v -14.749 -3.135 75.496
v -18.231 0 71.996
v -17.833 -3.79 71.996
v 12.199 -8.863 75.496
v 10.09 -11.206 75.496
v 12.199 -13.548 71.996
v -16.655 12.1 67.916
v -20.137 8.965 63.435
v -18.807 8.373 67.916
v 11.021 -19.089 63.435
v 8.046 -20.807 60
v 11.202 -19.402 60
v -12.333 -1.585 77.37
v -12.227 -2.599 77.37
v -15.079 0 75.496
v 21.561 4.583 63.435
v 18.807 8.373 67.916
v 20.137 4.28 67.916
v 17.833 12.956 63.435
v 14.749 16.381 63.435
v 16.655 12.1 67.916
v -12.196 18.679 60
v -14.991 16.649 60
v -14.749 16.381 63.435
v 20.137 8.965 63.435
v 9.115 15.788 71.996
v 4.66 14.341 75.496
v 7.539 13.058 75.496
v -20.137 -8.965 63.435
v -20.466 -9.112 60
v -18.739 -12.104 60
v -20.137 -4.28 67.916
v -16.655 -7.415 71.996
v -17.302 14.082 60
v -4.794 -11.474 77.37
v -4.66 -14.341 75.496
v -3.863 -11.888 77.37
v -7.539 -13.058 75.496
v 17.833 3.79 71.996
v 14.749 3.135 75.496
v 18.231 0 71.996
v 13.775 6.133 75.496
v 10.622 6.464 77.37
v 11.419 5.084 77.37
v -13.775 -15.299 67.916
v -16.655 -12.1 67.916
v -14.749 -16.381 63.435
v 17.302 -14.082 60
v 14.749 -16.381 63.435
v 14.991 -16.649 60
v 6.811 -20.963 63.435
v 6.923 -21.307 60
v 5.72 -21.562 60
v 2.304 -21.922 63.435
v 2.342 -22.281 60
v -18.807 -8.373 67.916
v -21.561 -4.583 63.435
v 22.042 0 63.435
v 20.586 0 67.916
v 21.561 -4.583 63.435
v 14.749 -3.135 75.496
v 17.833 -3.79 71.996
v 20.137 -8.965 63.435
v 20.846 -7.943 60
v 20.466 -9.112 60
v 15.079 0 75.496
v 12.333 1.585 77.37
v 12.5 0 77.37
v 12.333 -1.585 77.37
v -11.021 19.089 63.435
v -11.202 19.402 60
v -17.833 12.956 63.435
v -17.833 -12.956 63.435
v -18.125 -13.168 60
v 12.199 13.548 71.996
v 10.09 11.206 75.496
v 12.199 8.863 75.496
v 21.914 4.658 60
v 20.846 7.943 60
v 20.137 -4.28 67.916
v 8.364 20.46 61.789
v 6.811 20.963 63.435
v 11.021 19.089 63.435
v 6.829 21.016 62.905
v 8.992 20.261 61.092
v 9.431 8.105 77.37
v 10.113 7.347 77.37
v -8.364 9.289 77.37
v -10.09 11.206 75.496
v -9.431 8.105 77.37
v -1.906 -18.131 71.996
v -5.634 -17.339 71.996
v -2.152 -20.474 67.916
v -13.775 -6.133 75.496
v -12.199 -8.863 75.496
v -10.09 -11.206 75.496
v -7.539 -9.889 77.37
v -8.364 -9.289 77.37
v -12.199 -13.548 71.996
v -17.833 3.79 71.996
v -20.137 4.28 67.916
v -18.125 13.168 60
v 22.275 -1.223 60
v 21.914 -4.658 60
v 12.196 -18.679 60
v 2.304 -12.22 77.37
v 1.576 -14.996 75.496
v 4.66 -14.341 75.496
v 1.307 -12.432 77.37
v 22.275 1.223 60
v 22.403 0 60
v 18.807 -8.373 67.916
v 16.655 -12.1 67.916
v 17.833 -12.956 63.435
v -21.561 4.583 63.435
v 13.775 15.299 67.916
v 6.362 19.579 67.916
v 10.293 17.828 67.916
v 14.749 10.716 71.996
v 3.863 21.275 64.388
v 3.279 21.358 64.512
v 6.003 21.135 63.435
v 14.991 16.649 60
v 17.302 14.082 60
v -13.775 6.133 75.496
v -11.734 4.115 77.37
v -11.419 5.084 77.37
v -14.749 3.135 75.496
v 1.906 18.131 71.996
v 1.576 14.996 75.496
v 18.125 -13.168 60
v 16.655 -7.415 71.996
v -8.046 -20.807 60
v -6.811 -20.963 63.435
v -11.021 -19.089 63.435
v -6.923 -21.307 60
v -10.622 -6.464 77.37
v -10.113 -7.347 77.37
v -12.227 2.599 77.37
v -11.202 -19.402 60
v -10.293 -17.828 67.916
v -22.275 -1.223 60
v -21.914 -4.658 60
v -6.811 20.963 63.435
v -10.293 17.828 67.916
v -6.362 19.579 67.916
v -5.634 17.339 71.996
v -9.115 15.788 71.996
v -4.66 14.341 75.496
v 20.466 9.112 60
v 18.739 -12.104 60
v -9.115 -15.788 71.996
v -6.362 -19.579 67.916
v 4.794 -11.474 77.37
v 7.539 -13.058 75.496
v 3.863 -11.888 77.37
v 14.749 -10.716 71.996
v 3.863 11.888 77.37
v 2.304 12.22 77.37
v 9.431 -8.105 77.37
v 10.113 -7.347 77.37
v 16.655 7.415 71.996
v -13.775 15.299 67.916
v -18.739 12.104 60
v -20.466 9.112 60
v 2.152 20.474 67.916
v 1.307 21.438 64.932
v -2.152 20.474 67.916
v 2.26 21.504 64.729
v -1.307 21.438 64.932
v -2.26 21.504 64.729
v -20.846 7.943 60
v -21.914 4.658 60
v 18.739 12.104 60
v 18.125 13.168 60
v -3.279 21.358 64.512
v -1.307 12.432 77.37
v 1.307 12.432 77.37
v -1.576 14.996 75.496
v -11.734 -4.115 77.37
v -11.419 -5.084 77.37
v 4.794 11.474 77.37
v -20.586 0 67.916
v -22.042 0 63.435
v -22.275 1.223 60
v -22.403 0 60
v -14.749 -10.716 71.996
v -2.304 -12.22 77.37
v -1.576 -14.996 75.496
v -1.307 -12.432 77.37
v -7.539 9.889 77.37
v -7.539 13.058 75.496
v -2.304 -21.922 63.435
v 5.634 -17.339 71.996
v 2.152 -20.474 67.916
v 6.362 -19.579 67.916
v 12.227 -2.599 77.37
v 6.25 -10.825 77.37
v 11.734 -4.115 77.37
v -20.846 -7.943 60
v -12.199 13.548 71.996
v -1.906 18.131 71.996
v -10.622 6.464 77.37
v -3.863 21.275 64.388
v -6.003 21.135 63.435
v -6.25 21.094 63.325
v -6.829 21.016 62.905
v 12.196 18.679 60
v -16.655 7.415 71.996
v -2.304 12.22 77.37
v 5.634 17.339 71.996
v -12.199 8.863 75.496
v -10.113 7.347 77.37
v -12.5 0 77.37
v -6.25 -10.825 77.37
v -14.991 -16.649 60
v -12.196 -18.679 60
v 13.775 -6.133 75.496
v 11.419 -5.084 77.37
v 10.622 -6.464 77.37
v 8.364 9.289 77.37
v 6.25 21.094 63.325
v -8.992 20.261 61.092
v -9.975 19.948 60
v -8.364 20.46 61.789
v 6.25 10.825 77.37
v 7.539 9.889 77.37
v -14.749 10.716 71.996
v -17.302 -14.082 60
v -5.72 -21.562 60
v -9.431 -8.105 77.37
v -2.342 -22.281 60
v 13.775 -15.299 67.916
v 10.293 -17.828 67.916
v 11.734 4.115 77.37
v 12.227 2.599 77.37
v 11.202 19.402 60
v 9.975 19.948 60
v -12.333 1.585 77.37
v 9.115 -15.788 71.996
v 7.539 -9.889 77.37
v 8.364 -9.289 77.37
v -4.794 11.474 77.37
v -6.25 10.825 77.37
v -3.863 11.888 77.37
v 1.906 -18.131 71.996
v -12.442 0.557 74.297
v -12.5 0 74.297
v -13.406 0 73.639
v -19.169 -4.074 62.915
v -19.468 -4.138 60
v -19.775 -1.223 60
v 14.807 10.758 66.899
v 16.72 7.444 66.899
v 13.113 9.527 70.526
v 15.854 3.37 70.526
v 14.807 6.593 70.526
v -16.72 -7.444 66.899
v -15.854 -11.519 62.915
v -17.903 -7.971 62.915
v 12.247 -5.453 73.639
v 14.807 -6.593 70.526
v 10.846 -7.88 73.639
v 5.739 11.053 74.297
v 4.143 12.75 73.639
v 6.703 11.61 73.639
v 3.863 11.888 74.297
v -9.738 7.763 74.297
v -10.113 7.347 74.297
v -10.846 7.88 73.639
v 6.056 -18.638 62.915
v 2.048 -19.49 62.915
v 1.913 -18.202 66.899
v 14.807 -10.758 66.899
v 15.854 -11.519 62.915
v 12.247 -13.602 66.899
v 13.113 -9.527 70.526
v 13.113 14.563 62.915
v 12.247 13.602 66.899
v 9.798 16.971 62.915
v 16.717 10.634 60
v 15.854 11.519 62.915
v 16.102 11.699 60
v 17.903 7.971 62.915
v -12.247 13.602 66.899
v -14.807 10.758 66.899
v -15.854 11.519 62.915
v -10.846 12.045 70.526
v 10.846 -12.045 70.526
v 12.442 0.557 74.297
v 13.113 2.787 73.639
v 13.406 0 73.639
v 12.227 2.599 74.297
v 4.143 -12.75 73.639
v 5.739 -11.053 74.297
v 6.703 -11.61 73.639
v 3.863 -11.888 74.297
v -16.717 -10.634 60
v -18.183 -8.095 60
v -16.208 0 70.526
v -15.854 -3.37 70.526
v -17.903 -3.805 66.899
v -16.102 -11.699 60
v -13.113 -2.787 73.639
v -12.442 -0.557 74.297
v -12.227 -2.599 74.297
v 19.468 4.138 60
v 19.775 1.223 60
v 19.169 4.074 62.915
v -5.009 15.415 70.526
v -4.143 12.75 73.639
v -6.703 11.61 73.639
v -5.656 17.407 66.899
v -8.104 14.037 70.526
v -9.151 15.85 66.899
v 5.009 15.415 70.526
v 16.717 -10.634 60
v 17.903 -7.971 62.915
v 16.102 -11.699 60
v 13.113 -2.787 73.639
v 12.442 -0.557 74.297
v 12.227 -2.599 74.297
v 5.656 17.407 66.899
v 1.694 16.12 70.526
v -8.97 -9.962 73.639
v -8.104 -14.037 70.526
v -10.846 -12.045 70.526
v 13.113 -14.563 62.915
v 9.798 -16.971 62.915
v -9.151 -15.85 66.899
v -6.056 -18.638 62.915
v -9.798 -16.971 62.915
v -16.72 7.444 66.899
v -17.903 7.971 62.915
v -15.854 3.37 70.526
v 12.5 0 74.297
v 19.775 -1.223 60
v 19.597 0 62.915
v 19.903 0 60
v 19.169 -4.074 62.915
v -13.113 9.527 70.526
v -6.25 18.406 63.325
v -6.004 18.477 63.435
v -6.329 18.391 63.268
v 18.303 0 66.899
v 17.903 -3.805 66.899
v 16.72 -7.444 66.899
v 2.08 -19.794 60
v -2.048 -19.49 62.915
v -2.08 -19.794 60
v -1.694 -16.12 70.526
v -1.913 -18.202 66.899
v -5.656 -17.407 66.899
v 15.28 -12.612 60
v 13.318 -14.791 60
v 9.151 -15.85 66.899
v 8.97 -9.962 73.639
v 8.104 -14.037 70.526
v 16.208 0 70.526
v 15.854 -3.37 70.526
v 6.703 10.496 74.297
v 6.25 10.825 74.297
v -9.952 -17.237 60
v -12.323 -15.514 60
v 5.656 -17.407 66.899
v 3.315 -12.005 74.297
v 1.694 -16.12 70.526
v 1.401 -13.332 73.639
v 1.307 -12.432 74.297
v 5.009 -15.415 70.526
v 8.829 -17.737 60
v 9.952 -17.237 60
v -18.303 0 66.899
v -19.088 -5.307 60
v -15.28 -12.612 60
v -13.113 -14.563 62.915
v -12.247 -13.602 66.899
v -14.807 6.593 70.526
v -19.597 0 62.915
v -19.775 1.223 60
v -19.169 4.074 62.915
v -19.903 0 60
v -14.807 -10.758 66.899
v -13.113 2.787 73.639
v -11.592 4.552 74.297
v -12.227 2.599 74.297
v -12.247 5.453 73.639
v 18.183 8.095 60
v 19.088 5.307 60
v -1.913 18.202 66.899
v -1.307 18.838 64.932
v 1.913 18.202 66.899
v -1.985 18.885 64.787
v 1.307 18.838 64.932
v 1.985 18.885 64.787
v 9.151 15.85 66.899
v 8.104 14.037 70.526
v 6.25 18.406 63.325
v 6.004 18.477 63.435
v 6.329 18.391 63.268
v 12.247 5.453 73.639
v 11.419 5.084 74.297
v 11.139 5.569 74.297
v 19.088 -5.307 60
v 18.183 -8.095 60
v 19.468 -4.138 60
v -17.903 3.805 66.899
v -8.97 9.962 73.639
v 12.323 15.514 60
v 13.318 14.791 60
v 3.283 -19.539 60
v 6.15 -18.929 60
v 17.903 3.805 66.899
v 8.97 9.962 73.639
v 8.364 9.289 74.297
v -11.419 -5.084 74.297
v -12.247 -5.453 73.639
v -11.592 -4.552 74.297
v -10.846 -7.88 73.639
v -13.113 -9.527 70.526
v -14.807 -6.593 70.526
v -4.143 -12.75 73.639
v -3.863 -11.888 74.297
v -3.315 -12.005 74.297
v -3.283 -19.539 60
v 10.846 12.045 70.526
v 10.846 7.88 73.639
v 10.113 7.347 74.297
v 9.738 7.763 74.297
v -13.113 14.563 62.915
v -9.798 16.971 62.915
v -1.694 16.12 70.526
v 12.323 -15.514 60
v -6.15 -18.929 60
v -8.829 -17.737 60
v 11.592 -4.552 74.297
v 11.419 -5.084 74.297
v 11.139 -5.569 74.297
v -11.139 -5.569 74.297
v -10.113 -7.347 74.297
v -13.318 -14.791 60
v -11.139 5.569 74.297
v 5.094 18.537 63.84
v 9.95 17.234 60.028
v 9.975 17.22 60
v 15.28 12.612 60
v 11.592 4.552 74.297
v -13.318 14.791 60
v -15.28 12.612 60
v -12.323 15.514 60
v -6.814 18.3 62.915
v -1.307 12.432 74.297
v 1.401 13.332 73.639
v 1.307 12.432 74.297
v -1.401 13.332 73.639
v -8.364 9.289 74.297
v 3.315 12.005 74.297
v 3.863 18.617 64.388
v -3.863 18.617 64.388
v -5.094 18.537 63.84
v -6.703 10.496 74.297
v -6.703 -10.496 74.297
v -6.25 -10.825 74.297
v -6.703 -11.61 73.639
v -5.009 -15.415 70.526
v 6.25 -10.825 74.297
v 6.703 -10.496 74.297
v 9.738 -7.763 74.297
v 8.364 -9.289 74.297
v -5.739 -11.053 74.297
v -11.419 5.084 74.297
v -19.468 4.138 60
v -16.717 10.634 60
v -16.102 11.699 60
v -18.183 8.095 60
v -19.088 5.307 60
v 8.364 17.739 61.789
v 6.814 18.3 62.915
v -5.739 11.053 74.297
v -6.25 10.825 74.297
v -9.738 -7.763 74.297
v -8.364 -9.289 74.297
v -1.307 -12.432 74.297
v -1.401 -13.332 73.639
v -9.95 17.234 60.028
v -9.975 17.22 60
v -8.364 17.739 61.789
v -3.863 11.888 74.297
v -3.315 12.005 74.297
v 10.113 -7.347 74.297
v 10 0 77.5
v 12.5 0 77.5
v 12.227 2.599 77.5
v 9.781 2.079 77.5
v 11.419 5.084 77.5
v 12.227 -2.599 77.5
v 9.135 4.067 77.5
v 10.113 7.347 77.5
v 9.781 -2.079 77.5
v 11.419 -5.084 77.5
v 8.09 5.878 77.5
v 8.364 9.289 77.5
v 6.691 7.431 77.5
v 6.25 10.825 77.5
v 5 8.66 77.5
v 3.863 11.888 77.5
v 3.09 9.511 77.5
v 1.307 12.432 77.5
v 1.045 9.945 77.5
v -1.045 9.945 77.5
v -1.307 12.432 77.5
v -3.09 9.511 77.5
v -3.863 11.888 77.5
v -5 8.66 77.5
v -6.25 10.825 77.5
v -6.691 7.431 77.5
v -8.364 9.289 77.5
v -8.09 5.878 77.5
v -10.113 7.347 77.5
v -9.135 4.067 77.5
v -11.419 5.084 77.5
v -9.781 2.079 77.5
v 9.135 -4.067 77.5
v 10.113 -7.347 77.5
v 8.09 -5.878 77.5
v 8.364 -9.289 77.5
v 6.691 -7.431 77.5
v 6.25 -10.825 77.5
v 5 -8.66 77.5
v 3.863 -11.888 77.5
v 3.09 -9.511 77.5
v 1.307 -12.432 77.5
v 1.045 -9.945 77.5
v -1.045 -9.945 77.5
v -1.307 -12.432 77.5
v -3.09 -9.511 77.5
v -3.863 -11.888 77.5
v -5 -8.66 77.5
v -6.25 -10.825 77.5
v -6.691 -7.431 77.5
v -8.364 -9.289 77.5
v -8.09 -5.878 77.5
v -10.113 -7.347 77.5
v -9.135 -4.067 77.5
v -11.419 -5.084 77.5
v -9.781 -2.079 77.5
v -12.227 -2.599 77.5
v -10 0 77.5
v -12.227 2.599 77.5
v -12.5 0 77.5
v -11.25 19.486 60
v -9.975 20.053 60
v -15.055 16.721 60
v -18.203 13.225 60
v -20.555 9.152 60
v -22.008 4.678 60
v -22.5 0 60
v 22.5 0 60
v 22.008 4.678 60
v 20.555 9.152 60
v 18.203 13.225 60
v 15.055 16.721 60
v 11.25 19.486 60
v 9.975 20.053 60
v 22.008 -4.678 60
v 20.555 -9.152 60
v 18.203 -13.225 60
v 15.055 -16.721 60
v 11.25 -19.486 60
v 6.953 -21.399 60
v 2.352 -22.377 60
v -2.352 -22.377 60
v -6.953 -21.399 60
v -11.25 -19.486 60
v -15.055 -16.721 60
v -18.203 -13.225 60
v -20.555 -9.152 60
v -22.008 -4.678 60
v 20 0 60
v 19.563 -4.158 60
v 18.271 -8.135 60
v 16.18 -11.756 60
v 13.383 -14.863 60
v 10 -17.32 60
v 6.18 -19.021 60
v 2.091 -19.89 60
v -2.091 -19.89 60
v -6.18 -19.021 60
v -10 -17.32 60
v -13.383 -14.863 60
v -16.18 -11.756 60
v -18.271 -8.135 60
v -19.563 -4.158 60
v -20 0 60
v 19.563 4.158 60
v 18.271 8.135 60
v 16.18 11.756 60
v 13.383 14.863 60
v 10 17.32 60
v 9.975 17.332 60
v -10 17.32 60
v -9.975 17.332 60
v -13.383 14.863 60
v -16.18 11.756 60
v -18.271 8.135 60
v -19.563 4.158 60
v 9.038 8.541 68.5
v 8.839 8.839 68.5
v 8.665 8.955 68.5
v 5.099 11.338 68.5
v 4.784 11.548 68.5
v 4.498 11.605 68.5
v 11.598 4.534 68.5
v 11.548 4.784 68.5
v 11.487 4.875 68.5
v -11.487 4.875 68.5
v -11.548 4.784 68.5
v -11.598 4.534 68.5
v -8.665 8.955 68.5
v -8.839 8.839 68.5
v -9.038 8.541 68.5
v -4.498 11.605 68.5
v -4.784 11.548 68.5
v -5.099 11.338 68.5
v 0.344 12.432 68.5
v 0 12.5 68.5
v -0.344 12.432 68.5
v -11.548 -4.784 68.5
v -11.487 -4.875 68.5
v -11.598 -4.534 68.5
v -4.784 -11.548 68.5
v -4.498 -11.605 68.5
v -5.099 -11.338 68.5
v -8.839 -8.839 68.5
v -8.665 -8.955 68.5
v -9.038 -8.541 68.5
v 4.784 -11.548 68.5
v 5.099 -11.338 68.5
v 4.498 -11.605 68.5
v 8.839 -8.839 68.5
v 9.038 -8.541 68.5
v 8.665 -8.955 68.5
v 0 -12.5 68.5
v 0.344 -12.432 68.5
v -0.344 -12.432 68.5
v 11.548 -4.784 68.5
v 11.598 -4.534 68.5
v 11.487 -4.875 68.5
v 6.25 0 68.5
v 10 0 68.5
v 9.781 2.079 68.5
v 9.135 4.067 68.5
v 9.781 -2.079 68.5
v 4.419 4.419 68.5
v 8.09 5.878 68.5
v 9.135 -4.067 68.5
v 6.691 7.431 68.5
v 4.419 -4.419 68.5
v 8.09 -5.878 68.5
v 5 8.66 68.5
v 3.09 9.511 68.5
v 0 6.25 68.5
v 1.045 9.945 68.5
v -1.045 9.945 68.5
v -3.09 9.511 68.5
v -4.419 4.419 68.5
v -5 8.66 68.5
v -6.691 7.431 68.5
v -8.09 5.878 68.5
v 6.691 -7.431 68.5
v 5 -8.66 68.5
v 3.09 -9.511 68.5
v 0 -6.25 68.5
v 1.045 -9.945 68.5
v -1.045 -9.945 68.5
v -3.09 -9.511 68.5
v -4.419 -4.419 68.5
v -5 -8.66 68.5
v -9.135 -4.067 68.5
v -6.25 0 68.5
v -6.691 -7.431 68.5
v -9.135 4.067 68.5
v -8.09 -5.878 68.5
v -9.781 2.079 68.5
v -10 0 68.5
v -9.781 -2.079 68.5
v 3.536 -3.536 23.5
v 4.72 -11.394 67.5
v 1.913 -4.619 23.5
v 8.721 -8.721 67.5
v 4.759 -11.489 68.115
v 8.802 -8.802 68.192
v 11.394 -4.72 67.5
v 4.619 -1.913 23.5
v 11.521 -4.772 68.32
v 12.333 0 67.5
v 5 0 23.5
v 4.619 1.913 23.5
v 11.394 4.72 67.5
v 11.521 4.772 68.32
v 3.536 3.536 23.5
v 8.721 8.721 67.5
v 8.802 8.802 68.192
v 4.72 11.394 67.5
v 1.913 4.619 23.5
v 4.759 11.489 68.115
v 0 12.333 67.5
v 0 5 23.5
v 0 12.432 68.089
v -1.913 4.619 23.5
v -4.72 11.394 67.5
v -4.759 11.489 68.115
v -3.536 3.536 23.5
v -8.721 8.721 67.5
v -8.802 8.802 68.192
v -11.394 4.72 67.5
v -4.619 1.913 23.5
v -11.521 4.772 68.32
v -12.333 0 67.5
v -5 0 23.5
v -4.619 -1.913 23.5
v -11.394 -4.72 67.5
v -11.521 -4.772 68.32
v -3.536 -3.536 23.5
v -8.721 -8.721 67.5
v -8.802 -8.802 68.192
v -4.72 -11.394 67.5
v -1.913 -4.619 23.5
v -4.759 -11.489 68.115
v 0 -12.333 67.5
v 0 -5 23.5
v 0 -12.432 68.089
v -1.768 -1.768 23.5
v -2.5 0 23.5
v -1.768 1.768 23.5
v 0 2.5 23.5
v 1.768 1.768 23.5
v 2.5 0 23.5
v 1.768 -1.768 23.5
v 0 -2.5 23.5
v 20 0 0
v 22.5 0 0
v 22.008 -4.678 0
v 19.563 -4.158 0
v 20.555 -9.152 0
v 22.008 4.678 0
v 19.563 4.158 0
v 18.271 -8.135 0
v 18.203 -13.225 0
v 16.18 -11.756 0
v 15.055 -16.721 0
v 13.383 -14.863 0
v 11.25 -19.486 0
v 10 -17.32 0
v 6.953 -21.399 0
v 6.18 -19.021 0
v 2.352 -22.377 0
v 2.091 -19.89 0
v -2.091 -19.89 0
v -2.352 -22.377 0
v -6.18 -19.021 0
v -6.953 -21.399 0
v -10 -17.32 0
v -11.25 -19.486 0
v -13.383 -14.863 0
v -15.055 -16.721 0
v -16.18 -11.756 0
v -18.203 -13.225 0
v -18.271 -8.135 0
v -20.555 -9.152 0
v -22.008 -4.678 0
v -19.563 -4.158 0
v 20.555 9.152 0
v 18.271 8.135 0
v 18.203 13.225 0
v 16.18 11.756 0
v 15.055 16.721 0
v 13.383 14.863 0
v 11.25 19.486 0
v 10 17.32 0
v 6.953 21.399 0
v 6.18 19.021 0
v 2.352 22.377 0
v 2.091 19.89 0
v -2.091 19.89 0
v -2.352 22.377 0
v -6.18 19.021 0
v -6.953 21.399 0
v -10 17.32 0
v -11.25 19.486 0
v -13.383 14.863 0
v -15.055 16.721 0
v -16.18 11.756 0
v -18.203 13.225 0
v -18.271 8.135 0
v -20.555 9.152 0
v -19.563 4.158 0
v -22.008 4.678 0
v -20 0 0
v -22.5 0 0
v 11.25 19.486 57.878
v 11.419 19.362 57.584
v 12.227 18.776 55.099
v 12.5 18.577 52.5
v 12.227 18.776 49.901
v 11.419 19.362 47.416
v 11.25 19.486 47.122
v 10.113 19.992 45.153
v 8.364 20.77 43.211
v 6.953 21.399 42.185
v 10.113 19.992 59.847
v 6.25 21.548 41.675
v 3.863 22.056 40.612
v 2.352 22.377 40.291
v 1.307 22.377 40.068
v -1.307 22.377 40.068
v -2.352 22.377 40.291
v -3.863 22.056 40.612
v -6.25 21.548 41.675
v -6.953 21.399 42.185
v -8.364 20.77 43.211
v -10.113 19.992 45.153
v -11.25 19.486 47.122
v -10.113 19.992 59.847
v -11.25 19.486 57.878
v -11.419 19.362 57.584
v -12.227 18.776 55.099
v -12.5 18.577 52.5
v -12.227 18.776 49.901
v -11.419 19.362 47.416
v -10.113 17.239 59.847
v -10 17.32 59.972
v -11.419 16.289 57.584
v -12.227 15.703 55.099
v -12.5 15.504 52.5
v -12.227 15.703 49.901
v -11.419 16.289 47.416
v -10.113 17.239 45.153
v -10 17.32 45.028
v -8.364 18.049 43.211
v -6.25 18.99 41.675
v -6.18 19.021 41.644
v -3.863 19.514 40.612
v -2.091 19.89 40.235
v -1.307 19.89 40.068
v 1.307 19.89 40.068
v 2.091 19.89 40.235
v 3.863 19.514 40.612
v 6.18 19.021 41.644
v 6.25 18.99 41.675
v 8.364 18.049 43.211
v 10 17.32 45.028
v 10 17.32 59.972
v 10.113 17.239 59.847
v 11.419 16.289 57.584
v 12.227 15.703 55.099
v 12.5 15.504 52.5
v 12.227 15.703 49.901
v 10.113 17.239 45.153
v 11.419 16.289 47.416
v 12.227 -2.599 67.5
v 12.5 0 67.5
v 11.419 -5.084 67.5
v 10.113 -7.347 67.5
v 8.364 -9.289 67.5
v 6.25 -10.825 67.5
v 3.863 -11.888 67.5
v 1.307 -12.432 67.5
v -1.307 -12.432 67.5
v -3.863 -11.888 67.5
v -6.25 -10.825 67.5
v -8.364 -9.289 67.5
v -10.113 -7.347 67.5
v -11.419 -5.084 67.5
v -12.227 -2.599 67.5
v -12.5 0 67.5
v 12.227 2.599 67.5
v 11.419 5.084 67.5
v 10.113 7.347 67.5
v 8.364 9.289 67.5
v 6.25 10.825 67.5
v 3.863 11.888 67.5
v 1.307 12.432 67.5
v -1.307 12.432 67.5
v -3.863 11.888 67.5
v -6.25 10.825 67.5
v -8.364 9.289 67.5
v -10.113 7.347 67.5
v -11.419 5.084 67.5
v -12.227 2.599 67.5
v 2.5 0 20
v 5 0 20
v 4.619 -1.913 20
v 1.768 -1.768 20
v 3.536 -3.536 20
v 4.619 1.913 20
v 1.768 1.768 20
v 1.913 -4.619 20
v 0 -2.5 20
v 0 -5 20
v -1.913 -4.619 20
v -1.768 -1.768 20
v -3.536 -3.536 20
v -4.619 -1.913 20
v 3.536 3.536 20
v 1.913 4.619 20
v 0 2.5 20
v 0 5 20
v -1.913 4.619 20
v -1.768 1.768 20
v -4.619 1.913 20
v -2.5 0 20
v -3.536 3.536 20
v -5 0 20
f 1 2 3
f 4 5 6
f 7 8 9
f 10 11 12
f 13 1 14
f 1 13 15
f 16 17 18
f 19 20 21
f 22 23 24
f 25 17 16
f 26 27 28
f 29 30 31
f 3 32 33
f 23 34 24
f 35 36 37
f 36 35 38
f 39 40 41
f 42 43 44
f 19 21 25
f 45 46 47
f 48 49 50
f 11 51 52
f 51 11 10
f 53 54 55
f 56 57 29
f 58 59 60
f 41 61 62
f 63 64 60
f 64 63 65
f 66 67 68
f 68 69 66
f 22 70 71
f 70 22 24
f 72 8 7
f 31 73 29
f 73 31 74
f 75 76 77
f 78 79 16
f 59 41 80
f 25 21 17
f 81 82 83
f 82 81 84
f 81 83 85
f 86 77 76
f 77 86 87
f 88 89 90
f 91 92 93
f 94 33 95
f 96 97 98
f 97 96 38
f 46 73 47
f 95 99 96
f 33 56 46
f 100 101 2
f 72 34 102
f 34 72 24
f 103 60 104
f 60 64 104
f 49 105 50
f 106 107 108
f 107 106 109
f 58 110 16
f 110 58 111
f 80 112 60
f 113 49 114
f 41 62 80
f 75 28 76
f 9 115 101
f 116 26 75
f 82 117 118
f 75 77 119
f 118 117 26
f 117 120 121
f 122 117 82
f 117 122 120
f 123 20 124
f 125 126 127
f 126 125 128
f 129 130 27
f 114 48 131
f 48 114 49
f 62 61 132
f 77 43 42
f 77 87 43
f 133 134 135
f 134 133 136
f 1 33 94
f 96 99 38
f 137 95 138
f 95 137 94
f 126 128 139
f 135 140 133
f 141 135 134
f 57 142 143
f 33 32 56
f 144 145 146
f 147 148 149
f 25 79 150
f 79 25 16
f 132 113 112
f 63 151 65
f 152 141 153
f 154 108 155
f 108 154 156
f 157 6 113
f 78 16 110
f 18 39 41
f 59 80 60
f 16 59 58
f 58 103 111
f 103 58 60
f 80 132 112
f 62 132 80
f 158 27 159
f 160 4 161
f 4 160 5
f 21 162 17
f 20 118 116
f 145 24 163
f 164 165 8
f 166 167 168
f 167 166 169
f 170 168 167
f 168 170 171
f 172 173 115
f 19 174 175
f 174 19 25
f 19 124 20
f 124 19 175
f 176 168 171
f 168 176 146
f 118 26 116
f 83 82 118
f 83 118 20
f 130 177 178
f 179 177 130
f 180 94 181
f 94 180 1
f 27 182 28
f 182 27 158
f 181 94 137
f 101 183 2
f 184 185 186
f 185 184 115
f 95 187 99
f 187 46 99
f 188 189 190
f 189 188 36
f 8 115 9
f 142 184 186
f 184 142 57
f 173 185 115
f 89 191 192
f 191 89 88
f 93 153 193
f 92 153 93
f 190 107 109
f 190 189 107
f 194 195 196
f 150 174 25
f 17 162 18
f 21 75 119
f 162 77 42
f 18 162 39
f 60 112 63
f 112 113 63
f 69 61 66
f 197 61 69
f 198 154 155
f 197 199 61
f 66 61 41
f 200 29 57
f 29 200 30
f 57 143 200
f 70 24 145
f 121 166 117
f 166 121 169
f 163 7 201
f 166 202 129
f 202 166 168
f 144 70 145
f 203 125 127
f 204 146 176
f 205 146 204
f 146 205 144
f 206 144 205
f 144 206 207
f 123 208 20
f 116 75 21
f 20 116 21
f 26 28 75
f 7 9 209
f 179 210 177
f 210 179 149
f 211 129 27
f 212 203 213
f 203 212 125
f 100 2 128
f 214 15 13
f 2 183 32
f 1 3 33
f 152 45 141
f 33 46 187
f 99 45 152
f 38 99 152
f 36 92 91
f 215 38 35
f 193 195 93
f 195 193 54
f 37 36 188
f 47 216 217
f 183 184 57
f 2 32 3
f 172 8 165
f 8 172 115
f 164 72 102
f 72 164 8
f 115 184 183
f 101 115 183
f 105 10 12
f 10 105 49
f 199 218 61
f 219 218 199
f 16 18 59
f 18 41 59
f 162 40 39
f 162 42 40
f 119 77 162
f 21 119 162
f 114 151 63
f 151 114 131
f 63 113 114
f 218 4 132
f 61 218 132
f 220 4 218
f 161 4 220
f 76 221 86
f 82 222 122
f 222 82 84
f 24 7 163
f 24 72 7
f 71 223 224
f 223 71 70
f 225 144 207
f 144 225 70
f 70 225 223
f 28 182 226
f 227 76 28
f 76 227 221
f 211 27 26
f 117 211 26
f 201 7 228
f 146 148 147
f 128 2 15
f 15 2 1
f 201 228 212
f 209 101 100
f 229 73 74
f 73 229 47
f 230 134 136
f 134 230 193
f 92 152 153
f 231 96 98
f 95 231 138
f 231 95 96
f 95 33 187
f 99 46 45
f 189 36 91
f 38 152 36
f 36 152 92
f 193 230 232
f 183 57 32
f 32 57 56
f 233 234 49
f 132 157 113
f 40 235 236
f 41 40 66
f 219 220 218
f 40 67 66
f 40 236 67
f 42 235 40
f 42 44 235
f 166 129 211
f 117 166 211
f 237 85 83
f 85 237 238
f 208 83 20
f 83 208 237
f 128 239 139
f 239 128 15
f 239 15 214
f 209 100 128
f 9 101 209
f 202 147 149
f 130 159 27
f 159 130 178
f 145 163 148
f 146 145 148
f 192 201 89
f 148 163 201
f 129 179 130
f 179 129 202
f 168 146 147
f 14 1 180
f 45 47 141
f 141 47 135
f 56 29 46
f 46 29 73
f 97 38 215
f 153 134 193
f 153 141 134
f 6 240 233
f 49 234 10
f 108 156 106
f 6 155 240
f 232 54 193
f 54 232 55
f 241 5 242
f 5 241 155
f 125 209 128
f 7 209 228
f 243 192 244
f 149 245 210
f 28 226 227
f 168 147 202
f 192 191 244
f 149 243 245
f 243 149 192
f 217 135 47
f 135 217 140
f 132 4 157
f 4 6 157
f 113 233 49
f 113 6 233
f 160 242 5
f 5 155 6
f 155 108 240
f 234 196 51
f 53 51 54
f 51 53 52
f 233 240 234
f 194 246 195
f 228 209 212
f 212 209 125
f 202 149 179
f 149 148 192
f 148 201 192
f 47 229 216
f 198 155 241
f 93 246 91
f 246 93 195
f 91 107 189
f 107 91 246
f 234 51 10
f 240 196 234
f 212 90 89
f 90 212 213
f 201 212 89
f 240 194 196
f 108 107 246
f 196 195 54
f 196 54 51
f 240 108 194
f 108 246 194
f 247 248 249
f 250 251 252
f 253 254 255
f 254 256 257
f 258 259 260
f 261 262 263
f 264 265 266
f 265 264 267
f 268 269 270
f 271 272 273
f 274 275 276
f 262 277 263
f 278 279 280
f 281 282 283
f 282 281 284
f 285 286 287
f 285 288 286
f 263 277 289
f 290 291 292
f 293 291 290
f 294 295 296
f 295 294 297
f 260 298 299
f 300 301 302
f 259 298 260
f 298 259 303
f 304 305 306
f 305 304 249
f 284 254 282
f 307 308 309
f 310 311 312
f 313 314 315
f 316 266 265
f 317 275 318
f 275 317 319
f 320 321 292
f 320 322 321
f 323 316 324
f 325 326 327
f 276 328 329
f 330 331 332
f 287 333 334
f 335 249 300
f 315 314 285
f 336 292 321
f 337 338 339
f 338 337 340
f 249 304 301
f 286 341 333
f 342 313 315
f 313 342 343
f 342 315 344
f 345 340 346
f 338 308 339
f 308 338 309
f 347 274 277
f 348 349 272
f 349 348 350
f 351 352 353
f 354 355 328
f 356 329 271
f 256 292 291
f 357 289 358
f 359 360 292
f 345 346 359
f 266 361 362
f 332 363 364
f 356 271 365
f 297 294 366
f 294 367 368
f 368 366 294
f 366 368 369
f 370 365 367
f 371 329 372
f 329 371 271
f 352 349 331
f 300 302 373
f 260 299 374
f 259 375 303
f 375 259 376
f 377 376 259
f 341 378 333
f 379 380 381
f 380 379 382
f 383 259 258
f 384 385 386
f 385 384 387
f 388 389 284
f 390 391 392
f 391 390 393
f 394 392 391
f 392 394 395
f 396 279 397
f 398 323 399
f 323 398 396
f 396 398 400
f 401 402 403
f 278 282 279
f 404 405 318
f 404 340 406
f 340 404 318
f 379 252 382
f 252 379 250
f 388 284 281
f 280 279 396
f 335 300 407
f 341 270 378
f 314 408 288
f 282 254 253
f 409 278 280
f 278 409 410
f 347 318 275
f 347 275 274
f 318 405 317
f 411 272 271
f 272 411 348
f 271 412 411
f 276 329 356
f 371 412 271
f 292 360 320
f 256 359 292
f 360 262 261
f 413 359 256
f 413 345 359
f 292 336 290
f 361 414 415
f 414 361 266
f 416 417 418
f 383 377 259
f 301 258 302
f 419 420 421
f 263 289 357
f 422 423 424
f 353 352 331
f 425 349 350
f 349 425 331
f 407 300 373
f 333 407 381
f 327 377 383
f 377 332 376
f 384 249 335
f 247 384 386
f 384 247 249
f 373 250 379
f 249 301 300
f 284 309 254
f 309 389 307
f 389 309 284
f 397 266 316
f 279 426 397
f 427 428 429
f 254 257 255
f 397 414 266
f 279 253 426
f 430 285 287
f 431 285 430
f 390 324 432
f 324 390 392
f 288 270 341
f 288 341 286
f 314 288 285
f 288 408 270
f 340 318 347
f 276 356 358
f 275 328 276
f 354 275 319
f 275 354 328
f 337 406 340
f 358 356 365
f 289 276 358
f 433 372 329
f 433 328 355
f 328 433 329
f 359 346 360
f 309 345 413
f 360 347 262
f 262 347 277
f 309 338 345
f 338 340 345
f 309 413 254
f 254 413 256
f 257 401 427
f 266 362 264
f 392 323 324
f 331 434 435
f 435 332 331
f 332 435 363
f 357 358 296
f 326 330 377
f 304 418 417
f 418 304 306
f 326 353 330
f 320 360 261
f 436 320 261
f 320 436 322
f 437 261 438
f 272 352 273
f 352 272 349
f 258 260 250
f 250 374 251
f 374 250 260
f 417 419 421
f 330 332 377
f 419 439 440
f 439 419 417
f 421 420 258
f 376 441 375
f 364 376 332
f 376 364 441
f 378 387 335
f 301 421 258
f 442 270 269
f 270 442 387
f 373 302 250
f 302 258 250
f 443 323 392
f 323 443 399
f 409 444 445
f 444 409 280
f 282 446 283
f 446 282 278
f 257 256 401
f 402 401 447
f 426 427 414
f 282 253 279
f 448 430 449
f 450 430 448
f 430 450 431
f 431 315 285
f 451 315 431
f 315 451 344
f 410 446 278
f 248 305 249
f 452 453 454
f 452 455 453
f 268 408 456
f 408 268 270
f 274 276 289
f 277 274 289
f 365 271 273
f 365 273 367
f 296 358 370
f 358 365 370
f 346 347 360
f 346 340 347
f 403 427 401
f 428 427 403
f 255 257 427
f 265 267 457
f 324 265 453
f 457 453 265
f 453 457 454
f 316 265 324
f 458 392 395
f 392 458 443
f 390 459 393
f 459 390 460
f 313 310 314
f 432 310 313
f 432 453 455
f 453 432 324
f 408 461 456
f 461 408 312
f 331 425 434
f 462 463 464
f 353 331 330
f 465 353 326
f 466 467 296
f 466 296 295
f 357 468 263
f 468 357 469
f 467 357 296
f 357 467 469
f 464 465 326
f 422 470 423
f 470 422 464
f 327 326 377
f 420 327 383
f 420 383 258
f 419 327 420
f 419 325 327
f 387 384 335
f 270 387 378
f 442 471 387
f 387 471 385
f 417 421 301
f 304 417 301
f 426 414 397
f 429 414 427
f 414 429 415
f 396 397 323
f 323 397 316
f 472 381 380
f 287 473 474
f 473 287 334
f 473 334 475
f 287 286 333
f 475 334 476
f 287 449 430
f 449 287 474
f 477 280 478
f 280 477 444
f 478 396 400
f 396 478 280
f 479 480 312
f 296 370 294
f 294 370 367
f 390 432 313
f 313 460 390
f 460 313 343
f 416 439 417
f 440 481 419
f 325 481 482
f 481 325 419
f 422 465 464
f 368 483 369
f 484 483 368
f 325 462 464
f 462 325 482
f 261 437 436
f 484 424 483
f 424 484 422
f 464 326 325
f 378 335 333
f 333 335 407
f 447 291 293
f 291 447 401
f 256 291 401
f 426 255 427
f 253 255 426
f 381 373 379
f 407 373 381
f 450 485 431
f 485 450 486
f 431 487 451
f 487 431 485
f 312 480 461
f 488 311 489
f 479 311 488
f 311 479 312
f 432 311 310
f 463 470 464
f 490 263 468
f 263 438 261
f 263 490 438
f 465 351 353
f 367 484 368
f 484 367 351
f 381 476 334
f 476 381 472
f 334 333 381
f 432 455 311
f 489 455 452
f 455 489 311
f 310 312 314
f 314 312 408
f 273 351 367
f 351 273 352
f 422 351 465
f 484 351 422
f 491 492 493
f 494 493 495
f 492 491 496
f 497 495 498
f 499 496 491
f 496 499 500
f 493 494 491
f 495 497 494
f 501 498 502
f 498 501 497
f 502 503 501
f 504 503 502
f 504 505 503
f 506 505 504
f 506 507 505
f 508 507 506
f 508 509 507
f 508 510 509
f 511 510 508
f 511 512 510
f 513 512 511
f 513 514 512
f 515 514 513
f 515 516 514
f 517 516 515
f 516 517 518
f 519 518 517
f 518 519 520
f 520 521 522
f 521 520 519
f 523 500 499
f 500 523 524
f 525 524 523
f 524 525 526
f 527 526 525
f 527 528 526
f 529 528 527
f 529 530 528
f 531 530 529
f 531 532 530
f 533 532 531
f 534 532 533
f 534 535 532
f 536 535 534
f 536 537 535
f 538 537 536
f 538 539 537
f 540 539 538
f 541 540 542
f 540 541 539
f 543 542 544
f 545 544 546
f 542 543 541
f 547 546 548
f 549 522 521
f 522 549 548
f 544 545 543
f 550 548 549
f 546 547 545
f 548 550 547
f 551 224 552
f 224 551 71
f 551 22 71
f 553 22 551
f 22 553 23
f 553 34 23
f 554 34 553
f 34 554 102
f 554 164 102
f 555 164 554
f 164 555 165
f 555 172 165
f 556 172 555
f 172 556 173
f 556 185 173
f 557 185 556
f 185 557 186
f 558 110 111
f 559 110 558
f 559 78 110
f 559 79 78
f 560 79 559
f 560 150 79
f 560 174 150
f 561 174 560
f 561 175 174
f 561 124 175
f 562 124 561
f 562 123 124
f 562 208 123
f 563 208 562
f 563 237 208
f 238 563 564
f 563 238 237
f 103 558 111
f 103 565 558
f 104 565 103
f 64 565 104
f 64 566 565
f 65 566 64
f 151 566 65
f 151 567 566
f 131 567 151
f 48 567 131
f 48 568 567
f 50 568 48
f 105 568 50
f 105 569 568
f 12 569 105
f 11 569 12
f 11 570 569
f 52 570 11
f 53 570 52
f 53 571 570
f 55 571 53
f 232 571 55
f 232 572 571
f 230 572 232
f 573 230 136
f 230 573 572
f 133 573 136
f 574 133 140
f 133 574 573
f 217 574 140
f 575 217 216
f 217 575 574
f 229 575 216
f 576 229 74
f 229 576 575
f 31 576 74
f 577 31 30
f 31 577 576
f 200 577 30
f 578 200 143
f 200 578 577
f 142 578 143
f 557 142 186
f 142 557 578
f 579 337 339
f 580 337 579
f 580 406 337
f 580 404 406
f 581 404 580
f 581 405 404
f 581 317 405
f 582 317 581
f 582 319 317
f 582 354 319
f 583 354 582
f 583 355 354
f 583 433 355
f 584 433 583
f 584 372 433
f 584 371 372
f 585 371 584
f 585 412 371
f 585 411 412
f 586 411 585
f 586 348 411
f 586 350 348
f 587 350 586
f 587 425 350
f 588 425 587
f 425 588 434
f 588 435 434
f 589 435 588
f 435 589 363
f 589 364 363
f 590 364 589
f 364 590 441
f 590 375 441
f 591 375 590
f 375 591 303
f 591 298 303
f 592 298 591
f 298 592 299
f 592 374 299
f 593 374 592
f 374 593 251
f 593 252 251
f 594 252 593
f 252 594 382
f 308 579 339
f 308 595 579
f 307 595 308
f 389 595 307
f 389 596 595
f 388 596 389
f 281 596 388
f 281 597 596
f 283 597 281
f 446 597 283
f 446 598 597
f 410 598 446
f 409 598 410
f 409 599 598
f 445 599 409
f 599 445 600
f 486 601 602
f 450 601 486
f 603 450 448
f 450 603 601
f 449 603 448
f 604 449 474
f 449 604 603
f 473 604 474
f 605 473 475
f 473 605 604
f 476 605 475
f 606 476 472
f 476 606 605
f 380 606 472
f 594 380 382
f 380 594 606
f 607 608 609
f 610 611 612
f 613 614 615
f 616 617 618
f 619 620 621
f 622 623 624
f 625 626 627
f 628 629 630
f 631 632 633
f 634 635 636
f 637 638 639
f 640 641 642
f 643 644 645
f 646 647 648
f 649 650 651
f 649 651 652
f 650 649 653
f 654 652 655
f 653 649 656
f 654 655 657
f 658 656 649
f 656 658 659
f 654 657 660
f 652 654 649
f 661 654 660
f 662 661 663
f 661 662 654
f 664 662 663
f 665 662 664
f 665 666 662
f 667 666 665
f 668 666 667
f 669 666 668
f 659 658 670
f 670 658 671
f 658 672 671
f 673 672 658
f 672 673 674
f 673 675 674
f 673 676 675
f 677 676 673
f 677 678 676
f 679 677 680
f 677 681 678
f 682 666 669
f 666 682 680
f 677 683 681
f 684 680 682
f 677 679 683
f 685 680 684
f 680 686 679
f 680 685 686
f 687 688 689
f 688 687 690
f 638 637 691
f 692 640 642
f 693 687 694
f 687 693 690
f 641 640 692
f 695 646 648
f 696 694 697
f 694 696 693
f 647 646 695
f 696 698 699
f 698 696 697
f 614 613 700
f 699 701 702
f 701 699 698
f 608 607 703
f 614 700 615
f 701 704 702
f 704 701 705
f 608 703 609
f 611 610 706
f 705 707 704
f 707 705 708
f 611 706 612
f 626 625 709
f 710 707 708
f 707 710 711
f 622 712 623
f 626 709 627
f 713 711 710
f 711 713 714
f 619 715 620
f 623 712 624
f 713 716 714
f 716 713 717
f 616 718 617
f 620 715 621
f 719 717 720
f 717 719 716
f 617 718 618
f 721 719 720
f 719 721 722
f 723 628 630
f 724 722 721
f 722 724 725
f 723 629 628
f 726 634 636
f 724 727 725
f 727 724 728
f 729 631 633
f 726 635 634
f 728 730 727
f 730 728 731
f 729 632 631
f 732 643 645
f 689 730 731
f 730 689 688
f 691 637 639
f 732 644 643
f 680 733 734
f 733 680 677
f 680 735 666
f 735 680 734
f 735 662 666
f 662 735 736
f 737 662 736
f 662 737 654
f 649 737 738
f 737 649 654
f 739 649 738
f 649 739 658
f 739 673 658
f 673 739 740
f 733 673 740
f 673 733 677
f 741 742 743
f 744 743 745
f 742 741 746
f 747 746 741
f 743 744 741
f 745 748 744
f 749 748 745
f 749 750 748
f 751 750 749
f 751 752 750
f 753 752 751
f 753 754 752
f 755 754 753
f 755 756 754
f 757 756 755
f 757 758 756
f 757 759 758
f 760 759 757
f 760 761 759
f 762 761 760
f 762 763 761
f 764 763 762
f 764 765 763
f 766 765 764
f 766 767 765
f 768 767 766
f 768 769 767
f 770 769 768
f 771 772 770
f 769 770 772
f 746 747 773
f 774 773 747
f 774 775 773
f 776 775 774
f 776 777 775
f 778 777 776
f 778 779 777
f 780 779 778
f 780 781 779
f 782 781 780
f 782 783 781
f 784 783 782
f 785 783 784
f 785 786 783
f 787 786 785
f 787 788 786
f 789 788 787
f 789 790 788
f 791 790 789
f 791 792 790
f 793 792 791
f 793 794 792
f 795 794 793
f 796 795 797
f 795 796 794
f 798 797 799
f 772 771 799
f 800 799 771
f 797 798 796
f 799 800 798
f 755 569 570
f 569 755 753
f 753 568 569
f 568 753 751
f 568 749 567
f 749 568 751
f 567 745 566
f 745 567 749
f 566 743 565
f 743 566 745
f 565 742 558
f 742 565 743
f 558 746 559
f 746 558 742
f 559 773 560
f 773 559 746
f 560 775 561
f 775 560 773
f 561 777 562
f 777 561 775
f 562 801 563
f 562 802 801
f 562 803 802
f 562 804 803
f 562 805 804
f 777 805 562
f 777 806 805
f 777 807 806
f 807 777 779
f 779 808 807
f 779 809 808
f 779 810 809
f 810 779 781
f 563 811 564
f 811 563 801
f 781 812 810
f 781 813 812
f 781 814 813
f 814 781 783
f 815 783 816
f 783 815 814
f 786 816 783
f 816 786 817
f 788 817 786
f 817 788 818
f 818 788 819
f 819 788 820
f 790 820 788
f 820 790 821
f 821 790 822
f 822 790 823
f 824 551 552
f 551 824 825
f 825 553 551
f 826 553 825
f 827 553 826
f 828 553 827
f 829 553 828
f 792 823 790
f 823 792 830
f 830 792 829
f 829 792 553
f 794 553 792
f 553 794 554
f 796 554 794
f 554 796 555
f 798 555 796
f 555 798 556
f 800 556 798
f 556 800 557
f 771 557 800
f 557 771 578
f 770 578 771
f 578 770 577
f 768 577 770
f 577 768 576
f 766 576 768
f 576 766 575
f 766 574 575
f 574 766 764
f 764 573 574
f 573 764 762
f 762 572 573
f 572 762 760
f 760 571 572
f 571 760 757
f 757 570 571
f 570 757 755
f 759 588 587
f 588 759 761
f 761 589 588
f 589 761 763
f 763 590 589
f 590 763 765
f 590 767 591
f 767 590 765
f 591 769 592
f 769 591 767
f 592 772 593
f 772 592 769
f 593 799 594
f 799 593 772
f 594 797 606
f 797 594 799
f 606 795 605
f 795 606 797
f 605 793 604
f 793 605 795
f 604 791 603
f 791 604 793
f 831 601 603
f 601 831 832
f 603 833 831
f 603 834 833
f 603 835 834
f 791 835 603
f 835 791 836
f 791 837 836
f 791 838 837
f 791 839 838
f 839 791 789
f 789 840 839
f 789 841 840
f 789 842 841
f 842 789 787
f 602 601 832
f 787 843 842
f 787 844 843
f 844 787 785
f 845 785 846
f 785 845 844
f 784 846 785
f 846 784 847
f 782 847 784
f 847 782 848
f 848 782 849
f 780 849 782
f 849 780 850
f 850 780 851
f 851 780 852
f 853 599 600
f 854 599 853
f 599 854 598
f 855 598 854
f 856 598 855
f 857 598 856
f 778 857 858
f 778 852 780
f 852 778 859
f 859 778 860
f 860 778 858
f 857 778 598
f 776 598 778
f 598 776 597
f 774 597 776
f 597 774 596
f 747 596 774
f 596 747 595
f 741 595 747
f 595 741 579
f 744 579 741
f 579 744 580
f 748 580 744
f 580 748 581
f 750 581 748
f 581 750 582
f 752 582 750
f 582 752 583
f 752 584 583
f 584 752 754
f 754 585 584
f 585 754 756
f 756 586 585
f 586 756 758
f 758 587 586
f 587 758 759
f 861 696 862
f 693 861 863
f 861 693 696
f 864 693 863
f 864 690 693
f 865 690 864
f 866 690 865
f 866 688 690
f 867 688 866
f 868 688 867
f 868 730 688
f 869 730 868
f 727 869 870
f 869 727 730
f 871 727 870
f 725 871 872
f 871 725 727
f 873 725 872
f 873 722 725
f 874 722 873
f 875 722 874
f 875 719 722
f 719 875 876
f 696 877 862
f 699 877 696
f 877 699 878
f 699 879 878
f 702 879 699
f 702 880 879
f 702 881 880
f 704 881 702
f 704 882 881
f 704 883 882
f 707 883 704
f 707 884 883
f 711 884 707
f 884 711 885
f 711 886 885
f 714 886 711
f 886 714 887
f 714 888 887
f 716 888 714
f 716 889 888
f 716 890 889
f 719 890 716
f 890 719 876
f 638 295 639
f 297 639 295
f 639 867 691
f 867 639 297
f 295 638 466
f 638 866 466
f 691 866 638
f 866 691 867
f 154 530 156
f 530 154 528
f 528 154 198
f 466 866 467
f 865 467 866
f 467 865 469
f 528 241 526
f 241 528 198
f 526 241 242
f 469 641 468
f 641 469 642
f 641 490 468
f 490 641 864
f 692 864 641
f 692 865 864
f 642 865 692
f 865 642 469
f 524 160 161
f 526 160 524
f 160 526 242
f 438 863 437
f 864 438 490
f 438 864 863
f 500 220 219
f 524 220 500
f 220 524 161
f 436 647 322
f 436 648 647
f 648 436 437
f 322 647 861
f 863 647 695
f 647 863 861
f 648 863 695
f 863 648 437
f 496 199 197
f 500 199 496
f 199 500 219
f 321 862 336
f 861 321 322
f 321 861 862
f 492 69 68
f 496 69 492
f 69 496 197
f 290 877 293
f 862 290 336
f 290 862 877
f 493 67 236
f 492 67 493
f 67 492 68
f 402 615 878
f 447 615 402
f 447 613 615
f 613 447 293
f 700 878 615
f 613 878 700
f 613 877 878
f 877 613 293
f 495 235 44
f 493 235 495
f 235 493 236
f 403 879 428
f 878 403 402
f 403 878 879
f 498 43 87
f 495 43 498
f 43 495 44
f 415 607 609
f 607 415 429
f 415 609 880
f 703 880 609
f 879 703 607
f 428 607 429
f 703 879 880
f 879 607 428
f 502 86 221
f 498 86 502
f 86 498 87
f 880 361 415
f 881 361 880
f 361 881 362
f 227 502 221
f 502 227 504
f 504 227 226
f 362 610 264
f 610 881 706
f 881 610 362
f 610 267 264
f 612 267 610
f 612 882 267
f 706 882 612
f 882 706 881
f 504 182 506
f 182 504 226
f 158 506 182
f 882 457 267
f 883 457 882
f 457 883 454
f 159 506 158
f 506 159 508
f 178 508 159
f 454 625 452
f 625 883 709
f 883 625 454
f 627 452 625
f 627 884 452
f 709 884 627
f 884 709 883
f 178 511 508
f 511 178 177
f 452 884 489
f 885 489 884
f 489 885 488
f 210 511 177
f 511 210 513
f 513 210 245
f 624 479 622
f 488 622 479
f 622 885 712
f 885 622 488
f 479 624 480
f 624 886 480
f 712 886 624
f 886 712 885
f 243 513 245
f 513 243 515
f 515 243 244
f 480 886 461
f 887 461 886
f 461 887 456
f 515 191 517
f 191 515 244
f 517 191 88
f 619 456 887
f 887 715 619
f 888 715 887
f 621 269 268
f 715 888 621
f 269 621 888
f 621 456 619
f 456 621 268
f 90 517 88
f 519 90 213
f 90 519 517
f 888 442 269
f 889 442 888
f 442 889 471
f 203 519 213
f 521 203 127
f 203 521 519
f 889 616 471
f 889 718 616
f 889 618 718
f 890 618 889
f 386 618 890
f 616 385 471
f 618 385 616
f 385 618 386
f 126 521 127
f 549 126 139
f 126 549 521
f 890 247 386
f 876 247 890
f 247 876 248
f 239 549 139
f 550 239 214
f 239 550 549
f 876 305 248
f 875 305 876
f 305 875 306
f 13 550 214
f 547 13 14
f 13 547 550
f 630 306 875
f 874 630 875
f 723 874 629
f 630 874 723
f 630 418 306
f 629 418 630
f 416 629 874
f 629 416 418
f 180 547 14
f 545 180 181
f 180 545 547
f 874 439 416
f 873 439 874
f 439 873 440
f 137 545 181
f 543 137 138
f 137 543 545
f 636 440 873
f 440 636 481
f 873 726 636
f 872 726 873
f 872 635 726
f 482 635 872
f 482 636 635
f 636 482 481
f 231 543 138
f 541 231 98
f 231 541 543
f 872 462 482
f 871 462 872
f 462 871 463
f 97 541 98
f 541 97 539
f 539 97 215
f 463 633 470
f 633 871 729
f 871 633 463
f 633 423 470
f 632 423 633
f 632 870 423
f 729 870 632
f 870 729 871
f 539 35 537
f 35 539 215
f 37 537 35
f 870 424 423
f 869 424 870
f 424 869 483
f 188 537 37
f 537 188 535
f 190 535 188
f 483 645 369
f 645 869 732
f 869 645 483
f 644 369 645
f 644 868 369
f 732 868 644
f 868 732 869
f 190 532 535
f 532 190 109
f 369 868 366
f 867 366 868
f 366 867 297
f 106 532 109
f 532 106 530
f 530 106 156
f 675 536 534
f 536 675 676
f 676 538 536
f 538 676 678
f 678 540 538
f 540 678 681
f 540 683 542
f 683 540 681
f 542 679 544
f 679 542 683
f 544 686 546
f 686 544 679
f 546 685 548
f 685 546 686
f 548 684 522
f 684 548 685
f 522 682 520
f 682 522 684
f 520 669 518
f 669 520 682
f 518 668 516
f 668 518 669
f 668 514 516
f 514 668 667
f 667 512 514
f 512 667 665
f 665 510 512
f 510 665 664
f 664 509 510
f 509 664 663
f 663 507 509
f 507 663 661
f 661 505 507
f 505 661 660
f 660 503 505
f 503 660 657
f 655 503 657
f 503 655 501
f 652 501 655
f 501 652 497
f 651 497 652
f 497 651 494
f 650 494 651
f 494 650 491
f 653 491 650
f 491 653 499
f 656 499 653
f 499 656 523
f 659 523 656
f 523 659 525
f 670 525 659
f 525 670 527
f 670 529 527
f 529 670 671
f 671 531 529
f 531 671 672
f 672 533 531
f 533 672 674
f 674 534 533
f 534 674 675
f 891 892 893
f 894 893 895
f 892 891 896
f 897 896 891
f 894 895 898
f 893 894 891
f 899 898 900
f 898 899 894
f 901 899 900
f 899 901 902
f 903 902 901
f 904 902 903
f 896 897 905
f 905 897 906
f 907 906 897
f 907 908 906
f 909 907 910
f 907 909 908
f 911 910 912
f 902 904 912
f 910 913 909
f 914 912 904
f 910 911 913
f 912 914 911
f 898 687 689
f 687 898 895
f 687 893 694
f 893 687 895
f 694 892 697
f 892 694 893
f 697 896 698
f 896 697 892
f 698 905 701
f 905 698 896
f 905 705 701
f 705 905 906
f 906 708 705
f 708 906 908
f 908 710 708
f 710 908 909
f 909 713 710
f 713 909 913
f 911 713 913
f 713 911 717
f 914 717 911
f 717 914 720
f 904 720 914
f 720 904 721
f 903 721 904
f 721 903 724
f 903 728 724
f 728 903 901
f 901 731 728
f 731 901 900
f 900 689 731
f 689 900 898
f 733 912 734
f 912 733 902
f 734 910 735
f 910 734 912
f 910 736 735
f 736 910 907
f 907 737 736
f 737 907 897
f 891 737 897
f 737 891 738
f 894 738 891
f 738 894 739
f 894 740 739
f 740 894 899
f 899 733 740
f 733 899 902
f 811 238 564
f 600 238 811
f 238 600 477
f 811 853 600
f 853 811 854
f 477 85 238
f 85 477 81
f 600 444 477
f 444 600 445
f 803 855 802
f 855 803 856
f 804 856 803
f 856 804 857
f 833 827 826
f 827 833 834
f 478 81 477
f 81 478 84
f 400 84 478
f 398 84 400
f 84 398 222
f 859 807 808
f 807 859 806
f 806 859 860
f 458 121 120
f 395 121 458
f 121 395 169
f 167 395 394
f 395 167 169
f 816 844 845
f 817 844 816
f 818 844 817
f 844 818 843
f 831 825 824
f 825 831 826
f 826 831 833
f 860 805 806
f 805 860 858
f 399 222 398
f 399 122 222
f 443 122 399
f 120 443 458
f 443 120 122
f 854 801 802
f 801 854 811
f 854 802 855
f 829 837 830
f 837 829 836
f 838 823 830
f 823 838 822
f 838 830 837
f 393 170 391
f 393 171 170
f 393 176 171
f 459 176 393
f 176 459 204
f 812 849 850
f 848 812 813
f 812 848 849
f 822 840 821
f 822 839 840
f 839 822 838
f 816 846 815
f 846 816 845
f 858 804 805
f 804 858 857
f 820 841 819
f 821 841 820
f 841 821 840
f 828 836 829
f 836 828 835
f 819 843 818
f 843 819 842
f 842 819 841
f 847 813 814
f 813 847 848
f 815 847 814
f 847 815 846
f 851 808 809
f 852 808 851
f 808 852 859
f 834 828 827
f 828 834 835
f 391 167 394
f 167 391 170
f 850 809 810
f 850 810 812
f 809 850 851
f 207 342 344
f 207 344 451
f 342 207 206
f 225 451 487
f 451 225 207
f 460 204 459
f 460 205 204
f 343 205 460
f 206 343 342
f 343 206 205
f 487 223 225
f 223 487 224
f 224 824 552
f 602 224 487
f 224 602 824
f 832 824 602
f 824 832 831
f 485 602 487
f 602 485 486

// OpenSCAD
module extrusion_cut_hole() {
translate([0, 22.5, 12.5 + 40])
rotate([90,0,0])
linear_extrude(height=7.5)
circle(12.5);
}


difference() {
union() {
linear_extrude(height=60, center=false, convexity=0, twist=0)
difference() {
circle(22.5);
circle(20);
}
translate([0, 0, 50 + 17.5])
linear_extrude(height=10, center=false)
difference() {
circle(12.5);
circle(10);
}

translate([0,0,20])
linear_extrude(height=3.5, center=false, convexity=0, twist=0) 
difference() {
circle(5);
circle(2.5);
}

difference() {
translate([0, 0, 60 - 1.25])
intersection() {
translate([0, 0, 1.25]) cylinder(h=17.5, r=22.5);
difference() {
sphere(22.5347);
sphere(20.0347);
}
}

translate([0, 0, 60 + 17.5 - 10])
linear_extrude(height=12)
circle(10);
}

translate([0, 0, 20 + 3.5])
linear_extrude(height=45,center=false, scale=2.5)
difference() {
circle(5);
circle(2.5);
}

}

extrusion_cut_hole();
}
